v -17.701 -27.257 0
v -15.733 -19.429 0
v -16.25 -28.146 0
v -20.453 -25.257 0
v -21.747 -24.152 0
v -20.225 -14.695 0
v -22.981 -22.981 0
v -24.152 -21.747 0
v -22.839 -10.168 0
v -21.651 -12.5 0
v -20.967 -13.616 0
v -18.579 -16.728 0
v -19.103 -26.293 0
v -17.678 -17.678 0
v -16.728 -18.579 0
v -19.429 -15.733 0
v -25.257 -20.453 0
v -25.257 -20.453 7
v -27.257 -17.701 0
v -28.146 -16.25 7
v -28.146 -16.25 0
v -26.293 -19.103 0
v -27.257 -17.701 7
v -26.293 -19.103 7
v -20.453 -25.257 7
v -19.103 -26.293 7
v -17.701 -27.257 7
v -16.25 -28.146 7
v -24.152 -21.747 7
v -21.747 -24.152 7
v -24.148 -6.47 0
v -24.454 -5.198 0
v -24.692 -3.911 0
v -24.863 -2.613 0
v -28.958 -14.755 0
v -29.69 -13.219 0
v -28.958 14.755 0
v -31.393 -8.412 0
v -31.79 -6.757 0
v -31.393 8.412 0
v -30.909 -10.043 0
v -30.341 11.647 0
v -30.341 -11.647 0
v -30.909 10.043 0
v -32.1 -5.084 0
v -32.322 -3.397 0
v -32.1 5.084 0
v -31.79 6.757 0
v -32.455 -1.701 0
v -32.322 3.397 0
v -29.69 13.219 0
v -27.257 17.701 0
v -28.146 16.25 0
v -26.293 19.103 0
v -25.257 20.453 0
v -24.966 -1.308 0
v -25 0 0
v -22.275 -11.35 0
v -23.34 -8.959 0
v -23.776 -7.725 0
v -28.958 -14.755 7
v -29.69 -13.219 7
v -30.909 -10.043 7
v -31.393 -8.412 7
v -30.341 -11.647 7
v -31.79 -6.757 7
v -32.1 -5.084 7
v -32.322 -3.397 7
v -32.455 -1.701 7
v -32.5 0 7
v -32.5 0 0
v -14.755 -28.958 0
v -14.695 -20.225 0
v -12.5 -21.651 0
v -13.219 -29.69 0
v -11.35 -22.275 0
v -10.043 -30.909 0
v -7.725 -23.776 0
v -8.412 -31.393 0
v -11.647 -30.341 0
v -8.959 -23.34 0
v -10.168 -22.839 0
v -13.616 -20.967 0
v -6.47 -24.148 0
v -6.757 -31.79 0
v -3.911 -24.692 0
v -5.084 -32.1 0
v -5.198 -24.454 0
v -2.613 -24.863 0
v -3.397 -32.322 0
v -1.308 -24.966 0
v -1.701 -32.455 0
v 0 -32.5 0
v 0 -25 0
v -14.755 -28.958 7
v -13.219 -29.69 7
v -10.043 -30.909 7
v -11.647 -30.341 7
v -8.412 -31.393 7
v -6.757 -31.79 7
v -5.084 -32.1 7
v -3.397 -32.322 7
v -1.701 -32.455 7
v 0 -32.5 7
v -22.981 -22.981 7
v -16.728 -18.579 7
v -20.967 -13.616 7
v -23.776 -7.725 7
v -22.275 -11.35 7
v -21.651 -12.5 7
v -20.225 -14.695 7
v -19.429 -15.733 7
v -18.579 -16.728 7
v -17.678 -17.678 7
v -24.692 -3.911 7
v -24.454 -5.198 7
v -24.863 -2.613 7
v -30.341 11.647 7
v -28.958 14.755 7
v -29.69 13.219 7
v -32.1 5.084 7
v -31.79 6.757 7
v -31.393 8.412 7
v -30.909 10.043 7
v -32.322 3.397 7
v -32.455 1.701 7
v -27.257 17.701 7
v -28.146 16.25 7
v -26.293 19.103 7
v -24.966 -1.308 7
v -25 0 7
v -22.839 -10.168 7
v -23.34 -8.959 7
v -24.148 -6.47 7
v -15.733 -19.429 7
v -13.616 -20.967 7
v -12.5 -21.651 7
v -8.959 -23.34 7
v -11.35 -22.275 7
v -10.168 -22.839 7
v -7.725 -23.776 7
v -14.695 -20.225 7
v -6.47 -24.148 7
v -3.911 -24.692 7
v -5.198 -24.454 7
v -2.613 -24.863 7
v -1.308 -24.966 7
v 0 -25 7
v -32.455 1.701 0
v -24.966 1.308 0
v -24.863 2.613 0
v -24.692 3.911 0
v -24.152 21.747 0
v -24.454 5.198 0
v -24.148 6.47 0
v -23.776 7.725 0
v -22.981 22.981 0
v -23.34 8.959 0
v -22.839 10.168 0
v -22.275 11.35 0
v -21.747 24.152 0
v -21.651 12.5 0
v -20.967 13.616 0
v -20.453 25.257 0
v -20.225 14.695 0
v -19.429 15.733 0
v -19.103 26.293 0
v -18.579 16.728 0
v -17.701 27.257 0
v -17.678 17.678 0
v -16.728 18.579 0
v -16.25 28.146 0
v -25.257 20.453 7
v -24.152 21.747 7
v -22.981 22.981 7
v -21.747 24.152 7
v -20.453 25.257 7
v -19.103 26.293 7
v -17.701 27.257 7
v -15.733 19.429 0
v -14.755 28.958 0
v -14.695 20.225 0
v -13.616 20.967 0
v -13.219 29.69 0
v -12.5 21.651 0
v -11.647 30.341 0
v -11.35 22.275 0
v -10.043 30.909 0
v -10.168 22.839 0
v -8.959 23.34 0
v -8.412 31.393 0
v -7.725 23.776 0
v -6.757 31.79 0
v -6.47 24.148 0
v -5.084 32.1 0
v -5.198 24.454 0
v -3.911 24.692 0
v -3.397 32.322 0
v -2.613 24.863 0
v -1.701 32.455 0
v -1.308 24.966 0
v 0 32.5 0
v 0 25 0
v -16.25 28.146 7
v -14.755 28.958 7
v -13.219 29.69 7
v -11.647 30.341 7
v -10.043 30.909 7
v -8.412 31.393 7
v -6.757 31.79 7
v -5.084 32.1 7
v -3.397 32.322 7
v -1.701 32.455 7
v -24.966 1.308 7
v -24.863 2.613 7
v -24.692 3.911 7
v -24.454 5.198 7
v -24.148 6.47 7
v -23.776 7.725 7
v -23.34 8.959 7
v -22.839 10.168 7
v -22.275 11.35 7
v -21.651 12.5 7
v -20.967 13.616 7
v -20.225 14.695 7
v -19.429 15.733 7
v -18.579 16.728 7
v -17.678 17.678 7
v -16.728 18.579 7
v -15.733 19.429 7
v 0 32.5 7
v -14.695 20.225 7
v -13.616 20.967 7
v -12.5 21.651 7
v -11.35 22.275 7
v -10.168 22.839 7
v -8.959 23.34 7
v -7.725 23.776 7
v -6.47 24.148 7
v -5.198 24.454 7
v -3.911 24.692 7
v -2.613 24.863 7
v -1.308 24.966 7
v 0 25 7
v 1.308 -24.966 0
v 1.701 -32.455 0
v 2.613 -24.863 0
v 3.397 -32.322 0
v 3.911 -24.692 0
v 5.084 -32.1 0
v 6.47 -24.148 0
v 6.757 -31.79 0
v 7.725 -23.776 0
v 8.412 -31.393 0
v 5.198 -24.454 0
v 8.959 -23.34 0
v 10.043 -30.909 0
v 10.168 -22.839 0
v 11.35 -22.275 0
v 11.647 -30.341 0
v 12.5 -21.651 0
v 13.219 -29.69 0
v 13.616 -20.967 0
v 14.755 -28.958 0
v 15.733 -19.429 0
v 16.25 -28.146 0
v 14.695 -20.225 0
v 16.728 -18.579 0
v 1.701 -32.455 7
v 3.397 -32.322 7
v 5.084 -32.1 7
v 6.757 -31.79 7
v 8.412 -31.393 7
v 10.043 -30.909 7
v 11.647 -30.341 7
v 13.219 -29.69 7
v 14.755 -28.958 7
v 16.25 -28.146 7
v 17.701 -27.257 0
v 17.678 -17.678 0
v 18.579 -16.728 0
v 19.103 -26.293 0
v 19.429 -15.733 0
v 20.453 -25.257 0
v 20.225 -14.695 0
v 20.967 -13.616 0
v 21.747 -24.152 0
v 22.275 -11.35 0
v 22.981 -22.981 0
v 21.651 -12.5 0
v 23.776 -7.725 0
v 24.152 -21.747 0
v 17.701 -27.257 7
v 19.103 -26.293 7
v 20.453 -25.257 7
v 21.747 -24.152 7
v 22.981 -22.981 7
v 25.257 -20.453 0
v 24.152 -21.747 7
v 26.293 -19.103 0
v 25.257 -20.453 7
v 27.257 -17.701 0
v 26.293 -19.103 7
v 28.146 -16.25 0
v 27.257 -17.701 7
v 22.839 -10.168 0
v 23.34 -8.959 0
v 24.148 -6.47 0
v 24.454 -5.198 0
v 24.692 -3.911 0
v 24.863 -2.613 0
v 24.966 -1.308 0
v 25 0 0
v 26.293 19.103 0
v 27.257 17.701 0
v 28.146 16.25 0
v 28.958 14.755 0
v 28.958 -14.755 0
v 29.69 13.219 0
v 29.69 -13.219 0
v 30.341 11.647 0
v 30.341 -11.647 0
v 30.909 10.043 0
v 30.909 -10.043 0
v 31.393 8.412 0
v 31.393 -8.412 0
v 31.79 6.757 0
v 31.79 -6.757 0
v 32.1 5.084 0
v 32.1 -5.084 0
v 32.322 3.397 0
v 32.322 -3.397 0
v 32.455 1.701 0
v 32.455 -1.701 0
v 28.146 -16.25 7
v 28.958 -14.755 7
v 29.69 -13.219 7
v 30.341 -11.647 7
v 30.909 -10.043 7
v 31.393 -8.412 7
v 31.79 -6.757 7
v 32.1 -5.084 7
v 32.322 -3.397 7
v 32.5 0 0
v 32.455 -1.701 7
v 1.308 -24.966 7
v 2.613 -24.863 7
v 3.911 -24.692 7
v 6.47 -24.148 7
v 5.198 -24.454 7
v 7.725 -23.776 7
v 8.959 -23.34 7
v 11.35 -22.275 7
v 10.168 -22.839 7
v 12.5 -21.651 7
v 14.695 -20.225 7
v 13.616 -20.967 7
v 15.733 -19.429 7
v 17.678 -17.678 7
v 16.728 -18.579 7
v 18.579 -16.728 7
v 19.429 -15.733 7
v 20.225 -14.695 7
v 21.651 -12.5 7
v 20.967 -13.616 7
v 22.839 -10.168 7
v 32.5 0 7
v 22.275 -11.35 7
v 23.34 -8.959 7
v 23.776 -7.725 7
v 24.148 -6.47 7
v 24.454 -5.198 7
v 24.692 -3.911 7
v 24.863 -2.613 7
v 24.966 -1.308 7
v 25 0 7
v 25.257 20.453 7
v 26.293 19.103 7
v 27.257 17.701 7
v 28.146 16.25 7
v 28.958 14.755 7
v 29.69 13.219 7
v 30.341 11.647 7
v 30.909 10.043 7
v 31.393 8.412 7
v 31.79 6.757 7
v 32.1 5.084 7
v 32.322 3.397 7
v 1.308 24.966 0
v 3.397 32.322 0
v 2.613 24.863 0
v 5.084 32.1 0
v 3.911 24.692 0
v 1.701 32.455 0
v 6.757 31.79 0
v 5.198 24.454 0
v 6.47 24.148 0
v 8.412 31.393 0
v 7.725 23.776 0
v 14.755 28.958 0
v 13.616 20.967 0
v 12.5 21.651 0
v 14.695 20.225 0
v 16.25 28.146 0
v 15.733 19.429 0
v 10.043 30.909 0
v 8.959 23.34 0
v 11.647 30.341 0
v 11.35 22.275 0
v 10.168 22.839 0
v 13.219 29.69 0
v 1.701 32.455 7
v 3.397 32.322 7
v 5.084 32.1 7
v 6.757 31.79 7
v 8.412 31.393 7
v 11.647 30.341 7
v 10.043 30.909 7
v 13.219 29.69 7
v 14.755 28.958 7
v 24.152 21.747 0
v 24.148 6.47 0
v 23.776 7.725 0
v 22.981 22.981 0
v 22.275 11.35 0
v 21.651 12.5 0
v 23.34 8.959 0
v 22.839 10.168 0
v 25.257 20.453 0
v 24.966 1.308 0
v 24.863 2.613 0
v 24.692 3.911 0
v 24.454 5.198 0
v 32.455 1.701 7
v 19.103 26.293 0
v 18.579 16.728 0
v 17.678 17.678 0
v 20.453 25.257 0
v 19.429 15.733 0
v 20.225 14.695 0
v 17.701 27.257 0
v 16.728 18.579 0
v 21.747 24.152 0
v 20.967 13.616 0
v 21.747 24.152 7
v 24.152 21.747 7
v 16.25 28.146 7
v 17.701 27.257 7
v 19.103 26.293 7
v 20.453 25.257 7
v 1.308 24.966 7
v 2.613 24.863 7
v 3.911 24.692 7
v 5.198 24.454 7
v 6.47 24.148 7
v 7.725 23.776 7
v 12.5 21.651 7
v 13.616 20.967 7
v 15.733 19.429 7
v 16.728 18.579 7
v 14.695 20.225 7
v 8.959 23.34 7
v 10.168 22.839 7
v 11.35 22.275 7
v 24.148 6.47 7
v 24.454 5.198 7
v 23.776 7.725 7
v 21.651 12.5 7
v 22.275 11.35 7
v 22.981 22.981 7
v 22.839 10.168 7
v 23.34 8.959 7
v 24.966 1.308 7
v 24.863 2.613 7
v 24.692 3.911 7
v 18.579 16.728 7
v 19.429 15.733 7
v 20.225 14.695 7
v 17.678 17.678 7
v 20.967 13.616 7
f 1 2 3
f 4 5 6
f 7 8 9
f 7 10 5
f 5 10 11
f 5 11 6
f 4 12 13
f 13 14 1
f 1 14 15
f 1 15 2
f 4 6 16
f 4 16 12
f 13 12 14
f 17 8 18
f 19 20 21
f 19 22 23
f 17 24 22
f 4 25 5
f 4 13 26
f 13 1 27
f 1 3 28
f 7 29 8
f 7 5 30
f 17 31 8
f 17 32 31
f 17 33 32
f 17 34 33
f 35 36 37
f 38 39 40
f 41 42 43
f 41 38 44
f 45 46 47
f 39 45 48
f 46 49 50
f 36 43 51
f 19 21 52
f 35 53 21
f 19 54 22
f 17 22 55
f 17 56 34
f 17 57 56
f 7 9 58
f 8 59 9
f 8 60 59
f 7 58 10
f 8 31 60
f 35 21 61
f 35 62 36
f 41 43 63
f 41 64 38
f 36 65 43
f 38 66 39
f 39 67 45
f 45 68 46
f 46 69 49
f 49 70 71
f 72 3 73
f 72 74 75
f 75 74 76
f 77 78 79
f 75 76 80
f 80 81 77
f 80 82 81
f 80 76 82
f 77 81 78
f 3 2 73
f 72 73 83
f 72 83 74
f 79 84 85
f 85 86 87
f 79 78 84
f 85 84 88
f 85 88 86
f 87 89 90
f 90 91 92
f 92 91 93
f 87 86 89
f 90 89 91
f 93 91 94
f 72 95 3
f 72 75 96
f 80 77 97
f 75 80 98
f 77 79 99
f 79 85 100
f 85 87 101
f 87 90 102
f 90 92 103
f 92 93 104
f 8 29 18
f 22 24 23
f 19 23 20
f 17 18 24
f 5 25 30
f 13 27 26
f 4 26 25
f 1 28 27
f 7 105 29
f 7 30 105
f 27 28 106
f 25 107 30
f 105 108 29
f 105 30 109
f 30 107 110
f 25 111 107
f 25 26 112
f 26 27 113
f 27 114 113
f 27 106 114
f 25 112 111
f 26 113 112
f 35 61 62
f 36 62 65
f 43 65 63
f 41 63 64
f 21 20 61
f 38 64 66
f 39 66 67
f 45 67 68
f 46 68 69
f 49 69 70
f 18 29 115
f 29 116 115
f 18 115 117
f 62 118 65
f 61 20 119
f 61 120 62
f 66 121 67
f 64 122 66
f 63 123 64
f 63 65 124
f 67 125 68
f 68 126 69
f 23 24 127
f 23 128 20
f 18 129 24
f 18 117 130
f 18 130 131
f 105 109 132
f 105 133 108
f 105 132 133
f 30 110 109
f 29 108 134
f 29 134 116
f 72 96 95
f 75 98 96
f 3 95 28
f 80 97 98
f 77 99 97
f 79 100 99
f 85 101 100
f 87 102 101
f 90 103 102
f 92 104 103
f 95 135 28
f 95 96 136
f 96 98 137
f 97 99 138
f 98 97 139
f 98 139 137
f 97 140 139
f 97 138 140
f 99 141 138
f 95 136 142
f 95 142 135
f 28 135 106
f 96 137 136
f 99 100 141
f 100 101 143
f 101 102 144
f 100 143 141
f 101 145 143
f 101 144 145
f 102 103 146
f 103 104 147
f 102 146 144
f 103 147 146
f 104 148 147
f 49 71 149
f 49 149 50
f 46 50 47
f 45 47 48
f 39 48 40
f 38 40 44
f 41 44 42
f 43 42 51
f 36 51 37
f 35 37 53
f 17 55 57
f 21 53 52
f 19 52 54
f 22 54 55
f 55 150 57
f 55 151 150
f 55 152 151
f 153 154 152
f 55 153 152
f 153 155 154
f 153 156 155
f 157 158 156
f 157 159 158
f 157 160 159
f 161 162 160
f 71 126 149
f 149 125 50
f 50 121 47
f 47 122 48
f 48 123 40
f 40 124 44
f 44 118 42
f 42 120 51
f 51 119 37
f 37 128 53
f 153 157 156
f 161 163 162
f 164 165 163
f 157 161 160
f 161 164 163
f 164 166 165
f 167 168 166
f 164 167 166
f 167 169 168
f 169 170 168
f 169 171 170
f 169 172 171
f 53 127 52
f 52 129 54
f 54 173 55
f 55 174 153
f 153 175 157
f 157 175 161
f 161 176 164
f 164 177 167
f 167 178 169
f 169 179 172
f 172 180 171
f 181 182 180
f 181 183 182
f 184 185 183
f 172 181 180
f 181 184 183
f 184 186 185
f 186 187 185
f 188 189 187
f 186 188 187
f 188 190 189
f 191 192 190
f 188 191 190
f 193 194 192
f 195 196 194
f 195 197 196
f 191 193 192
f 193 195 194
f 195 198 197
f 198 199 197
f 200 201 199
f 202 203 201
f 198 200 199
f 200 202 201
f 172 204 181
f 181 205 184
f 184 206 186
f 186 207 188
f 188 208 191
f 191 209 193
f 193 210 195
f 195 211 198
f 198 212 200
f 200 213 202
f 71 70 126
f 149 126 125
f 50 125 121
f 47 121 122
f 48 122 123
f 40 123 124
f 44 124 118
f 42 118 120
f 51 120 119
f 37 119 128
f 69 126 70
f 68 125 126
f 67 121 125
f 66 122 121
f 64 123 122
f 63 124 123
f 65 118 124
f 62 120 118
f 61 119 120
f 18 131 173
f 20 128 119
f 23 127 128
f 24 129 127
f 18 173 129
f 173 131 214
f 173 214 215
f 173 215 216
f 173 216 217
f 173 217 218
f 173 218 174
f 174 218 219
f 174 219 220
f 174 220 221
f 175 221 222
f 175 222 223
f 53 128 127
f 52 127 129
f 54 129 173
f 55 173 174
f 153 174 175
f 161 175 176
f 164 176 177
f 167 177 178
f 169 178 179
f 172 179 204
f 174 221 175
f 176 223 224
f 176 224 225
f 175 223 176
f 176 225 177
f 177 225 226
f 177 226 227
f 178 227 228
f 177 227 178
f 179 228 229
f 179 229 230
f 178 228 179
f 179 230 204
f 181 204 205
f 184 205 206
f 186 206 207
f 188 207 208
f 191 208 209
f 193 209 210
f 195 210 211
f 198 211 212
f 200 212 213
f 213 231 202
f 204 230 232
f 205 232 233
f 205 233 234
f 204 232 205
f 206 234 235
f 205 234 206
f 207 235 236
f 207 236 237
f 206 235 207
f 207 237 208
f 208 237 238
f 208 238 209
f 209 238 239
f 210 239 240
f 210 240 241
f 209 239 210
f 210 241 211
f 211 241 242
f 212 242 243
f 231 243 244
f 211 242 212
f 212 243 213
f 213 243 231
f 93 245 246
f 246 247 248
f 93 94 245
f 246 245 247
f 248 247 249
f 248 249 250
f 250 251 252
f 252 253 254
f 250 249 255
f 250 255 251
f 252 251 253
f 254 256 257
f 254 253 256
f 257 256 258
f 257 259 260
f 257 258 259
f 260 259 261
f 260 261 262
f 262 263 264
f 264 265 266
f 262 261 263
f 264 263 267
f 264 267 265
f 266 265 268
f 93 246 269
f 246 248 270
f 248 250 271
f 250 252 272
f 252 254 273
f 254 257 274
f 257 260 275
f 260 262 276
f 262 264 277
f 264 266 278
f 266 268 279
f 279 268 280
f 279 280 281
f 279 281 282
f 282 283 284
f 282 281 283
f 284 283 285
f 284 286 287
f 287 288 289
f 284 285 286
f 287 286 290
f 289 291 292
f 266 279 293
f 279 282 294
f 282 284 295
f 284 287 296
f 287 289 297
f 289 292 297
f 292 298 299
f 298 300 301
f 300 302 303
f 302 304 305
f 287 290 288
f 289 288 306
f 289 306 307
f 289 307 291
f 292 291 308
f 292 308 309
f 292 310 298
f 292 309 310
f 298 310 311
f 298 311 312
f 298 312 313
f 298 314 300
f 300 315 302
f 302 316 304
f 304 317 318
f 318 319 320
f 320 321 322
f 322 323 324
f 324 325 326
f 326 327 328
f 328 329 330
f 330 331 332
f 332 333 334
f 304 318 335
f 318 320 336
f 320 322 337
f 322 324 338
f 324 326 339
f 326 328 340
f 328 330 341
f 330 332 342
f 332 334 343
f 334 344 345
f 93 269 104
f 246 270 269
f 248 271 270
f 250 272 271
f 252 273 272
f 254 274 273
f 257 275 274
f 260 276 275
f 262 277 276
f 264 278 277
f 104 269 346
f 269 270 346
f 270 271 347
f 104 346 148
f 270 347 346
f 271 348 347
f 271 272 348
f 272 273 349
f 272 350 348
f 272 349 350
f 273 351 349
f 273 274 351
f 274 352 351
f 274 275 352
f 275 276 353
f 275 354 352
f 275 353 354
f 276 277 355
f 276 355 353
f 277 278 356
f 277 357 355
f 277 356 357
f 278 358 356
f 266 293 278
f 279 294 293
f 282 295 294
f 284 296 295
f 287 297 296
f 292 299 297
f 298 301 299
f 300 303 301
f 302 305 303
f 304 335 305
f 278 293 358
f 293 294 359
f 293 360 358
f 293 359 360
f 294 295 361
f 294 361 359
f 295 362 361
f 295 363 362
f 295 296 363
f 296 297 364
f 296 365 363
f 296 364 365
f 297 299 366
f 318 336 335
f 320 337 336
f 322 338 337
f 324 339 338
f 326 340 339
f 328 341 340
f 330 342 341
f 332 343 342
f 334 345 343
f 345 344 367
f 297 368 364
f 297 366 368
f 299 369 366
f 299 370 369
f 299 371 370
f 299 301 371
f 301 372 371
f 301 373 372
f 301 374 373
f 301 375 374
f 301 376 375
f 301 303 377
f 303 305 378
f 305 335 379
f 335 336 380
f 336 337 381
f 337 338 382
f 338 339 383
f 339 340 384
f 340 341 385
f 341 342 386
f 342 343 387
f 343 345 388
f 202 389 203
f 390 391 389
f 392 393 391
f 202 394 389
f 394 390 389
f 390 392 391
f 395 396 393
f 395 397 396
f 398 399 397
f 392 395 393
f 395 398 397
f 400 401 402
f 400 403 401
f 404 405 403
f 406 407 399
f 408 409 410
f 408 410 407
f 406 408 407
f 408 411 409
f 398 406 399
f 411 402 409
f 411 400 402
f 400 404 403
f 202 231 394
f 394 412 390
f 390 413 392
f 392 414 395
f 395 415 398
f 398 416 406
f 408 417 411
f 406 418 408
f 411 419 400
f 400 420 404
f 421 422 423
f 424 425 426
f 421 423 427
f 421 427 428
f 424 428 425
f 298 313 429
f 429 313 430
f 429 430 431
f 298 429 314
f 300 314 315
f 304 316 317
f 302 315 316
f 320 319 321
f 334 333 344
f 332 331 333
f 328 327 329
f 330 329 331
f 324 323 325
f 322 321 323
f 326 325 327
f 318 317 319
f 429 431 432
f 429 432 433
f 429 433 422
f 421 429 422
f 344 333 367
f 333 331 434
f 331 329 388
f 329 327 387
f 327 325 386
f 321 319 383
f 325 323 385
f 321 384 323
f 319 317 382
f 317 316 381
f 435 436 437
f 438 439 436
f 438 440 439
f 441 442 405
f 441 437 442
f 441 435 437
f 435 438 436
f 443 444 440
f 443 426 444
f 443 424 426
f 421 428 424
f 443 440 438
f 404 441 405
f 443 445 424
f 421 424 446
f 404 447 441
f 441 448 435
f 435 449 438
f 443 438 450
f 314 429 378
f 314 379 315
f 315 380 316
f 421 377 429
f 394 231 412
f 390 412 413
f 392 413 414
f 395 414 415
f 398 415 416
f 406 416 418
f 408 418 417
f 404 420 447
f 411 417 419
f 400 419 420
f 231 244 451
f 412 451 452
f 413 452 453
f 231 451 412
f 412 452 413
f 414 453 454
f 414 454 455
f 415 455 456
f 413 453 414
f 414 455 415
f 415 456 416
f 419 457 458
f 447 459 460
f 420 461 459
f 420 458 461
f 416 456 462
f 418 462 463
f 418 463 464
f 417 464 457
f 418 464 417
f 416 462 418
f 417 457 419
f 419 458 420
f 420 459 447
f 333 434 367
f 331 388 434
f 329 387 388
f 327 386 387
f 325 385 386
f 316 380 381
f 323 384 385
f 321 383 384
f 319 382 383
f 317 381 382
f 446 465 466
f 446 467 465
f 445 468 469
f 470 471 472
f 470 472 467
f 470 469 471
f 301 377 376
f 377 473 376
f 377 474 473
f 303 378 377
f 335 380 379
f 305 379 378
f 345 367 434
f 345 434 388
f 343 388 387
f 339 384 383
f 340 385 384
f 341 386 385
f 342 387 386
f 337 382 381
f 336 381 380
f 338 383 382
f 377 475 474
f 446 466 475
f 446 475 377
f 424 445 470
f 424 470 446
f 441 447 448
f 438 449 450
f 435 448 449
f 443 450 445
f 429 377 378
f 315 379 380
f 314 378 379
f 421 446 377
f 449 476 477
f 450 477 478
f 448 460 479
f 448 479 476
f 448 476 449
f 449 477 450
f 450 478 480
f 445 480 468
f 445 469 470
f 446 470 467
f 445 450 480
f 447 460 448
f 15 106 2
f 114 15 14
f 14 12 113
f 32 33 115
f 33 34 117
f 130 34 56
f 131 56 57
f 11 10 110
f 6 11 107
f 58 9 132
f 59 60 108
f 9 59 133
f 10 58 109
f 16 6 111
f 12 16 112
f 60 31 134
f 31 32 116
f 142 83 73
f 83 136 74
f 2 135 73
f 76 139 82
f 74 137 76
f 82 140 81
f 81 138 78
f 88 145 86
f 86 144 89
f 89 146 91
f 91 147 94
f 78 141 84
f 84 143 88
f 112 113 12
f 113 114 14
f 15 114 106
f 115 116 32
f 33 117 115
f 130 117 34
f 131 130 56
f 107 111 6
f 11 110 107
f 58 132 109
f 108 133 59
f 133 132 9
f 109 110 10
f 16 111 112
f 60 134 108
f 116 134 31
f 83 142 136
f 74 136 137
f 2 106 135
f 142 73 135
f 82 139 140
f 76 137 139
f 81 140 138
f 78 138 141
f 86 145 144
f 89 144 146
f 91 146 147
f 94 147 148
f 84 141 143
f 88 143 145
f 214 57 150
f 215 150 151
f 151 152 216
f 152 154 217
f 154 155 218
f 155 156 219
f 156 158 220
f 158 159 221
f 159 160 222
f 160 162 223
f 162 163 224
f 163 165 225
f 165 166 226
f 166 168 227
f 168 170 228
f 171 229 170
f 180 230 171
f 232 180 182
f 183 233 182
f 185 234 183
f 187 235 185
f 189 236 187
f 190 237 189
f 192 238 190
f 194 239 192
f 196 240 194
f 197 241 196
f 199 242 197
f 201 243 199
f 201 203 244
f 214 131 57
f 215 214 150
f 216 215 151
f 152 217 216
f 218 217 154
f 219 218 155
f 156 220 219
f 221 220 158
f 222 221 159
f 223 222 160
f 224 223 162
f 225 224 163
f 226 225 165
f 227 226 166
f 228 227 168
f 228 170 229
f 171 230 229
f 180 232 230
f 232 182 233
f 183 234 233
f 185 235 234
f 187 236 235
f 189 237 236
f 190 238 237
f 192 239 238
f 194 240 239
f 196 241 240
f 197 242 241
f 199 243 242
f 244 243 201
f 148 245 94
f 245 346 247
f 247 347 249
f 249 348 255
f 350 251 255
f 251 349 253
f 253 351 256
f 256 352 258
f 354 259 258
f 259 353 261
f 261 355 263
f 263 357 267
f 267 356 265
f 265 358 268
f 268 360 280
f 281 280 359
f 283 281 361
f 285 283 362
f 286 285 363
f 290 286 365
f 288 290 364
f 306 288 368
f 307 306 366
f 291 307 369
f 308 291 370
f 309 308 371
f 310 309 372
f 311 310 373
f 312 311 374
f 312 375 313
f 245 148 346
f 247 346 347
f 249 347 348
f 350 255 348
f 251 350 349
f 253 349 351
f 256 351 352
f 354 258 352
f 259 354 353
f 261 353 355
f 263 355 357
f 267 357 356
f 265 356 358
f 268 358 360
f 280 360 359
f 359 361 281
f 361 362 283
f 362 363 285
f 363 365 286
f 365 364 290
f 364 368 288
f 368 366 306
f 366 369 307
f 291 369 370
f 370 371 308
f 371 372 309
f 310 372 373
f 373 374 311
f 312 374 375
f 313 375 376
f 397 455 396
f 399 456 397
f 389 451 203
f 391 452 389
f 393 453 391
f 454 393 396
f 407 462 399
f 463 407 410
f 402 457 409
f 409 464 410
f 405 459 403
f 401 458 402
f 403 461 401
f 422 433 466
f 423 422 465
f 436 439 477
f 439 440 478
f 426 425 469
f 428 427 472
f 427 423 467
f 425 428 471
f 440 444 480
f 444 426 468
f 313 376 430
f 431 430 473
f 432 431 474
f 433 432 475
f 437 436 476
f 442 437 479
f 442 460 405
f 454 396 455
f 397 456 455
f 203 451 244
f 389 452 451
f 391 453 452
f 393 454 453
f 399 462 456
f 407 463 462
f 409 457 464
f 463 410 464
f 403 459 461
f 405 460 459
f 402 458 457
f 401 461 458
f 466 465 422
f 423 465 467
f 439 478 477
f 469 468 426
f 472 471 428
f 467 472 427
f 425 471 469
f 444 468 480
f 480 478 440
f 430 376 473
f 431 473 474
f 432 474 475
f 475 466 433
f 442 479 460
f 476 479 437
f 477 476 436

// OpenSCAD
// file: C:/gh/oomlout_oobb_part_motor_gearbox_wave_drive_version_5/parts/oobb_part_motor_gearbox_wave_drive_version_5_12_to_1_reduction/compact_helpers.scad
// Reusable native geometry helpers.
function polar(r,a)=[r*cos(a),r*sin(a)];
function rotate_point(p,a)=[p[0]*cos(a)-p[1]*sin(a),p[0]*sin(a)+p[1]*cos(a)];
function profile_point(t)=let(
    s=sqrt(pow(pitch_radius,2)-pow(eccentricity*sin(cavity_count*t),2)),
    r=eccentricity*cos(cavity_count*t)+s,
    xi=atan2(eccentricity*cavity_count*sin(cavity_count*t),s),
    rr=roller_radius+profile_clearance)
    [r*cos(t)+rr*cos(t+xi),r*sin(t)+rr*sin(t+xi)];
function profile_points(upper=false)=[for(i=[0:cavity_count*profile_samples_per_cavity-1])
    rotate_point(profile_point(360*i/(cavity_count*profile_samples_per_cavity)),0)];
function roller_position(i,a,upper=false)=let(
    t=-a/roller_count+360*i/roller_count,
    rel=t-a-(upper?180:0),
    r=eccentricity*cos(rel)+sqrt(pow(pitch_radius,2)-pow(eccentricity*sin(rel),2))) polar(r,t);
module tube(ro,ri,h) { difference() { cylinder(r=ro,h=h); translate([0,0,-eps]) cylinder(r=ri,h=h+2*eps); } }
module screw_hole(size,h) { scale([1,1,h]) { if(size=="m2") oobb_hole_m2(); if(size=="m3") oobb_hole_m3(); if(size=="m6") oobb_hole_m6(); } }
module socket_recess(size,depth) {
    // OOBB socket head starts at the under-head plane and extends outward.
    scale([1,1,depth/(size=="m3"?3.2:2.2)]) {
        if(size=="m3") oobb_socket_m3(); else oobb_socket_m2();
    }
}
module at_mounts(points) { for(p=points) translate([p[0],p[1],0]) children(); }
module shaft_cut(h,fit=shaft_fit_clearance) {
    linear_extrude(h) intersection() {
        circle(r=input_shaft_diameter/2+fit);
        translate([-10,-10]) square([10+input_shaft_diameter/2-input_shaft_flat_depth+fit,20]);
    }
}
module rounded_rectangle_plate(size=[119,119,3],radius=1.5) {
    hull() for(x=[-1,1],y=[-1,1]) translate([x*(size[0]/2-radius),y*(size[1]/2-radius),0]) cylinder(r=radius,h=size[2]);
}
module grid_cuts(h) {
    // Actual OOBB grid centres: six units are centred on half-pitch offsets.
    for(i=[0:base_width-1],j=[0:base_height-1])
        let(x=(i-(base_width-1)/2)*oobb_grid_pitch,y=(j-(base_height-1)/2)*oobb_grid_pitch)
        if(sqrt(x*x+y*y)>housing_radius+3.5)
            translate([x,y,-eps]) screw_hole("m6",h+2*eps);
}
module wave_generator() {
    render(convexity=20) difference() {
        tube(wave_radius,12.6,wave_height);
        translate([0,0,wave_seat_z]) cylinder(r=13.5+bearing_seat_clearance,h=wave_height);
        translate([0,0,wave_height-wave_cap_depth]) cylinder(r=22.15,h=wave_cap_depth+eps);
        at_mounts(wave_mounts) {
            translate([0,0,-eps]) screw_hole("m3",wave_height+2*eps);
            translate([0,0,wave_nut_z]) scale([1,1,(wave_height-wave_cap_depth-wave_nut_z+eps)/2.7]) oobb_nut_m3();
        }
    }
}
module wave_cap() {
    render(convexity=20) difference() {
        tube(22,12.6,wave_cap_depth);
        at_mounts(wave_mounts) {
            translate([0,0,-eps]) screw_hole("m3",wave_cap_depth+2*eps);
            translate([0,0,wave_cap_depth-wave_head_recess]) socket_recess("m3",wave_head_recess+eps);
        }
    }
}
// file: C:/gh/oomlout_oobb_part_motor_gearbox_wave_drive_version_5/parts/oobb_part_motor_gearbox_wave_drive_version_5_12_to_1_reduction/oobb_hardware.scad
module oobb_rounded_rectangle_edges(size, radius, radius_top, radius_bottom) {
      rt=radius_top; rb=radius_bottom; depth=size[2]; n=16;
      lower=rb==0 ? [[radius,0]] :
        [for(i=[0:n]) let(a=-90+90*i/n) [radius-rb+rb*cos(a),rb+rb*sin(a)]];
      upper=rt==0 ? [[radius,depth]] :
        [for(i=[0:n]) let(a=90*i/n) [radius-rt+rt*cos(a),depth-rt+rt*sin(a)]];
      hull() for(x=[-size[0]/2+radius,size[0]/2-radius])
        for(y=[-size[1]/2+radius,size[1]/2-radius])
          translate([x,y,0]) rotate_extrude()
            polygon(concat([[0,0]],lower,upper,[[0,depth]]));
    }
// Generated from installed OOBB v5. All primitives use overhang=True.

module oobb_motor_plate_body() {


difference() {
	union() {
		translate(v = [0, 0, 0]) {
			rotate(a = [0, 0, 0]) {
				difference() {
					union() {
						oobb_rounded_rectangle_edges(radius = 1.5, radius_bottom = 1.5, radius_top = 1.5, size = [89.0, 89.0, 4.0]);
					}
					union();
				}
			}
		}
	}
	union();
}

}

module oobb_hole_m2() {


difference() {
	union() {
		cylinder(h = 1, r = 1.35);
	}
	union();
}

}

module oobb_hole_m3() {


difference() {
	union() {
		cylinder(h = 1, r = 1.8);
	}
	union();
}

}

module oobb_hole_m6() {


difference() {
	union() {
		cylinder(h = 1, r = 3.25);
	}
	union();
}

}

module oobb_nut_m2() {


difference() {
	union() {
		translate(v = [0, 0, 0]) {
			rotate(a = [0, 0, 0]) {
				difference() {
					union() {
						linear_extrude(height = 2.2) {
							polygon(points = [[2.4234, 0.0], [1.2117000000000002, 2.0987259635312085], [-1.2116999999999996, 2.0987259635312085], [-2.4234, 2.967809053053696e-16], [-1.211700000000001, -2.098725963531208], [1.2116999999999984, -2.0987259635312094]]);
						}
						translate(v = [-1.25, -2.75, -0.3]) {
							cube(size = [2.5, 5.5, 0.3]);
						}
						translate(v = [-1.25, -1.25, -0.6]) {
							cube(size = [2.5, 2.5, 0.3]);
						}
						translate(v = [-1.25, -2.75, 2.2]) {
							cube(size = [2.5, 5.5, 0.3]);
						}
						translate(v = [-1.25, -1.25, 2.5]) {
							cube(size = [2.5, 2.5, 0.3]);
						}
					}
					union();
				}
			}
		}
	}
	union();
}

}

module oobb_socket_m2() {


difference() {
	union() {
		translate(v = [0, 0, 0]) {
			rotate(a = [0, 0, 0]) {
				difference() {
					union() {
						cylinder(h = 2.2, r = 2.1);
						translate(v = [-1.25, -2.75, -0.3]) {
							cube(size = [2.5, 5.5, 0.3]);
						}
						translate(v = [-1.25, -1.25, -0.6]) {
							cube(size = [2.5, 2.5, 0.3]);
						}
					}
					union();
				}
			}
		}
	}
	union();
}

}

module oobb_nut_m3() {


difference() {
	union() {
		translate(v = [0, 0, 0]) {
			rotate(a = [0, 0, 0]) {
				difference() {
					union() {
						linear_extrude(height = 2.7) {
							polygon(points = [[3.4619999999999997, 0.0], [1.7310000000000003, 2.9981799479017264], [-1.7309999999999992, 2.9981799479017264], [-3.4619999999999997, 4.2397272186481365e-16], [-1.7310000000000014, -2.998179947901726], [1.7309999999999977, -2.9981799479017277]]);
						}
						translate(v = [-1.75, -3.25, -0.3]) {
							cube(size = [3.5, 6.5, 0.3]);
						}
						translate(v = [-1.75, -1.75, -0.6]) {
							cube(size = [3.5, 3.5, 0.3]);
						}
						translate(v = [-1.75, -3.25, 2.7]) {
							cube(size = [3.5, 6.5, 0.3]);
						}
						translate(v = [-1.75, -1.75, 3.0]) {
							cube(size = [3.5, 3.5, 0.3]);
						}
					}
					union();
				}
			}
		}
	}
	union();
}

}

module oobb_socket_m3() {


difference() {
	union() {
		translate(v = [0, 0, 0]) {
			rotate(a = [0, 0, 0]) {
				difference() {
					union() {
						cylinder(h = 3.2, r = 3.0);
						translate(v = [-1.75, -3.25, -0.3]) {
							cube(size = [3.5, 6.5, 0.3]);
						}
						translate(v = [-1.75, -1.75, -0.6]) {
							cube(size = [3.5, 3.5, 0.3]);
						}
					}
					union();
				}
			}
		}
	}
	union();
}

}

module oobb_nut_m6() {


difference() {
	union() {
		translate(v = [0, 0, 0]) {
			rotate(a = [0, 0, 0]) {
				difference() {
					union() {
						linear_extrude(height = 5.2) {
							polygon(points = [[5.914249999999999, 0.0], [2.957125, 5.1218907443321156], [-2.9571249999999982, 5.1218907443321156], [-5.914249999999999, 7.242867331857232e-16], [-2.9571250000000022, -5.121890744332115], [2.9571249999999956, -5.121890744332118]]);
						}
						translate(v = [-2.875, -5.0, -0.3]) {
							cube(size = [5.75, 10, 0.3]);
						}
						translate(v = [-2.875, -2.875, -0.6]) {
							cube(size = [5.75, 5.75, 0.3]);
						}
						translate(v = [-2.875, -5.0, 5.2]) {
							cube(size = [5.75, 10, 0.3]);
						}
						translate(v = [-2.875, -2.875, 5.5]) {
							cube(size = [5.75, 5.75, 0.3]);
						}
					}
					union();
				}
			}
		}
	}
	union();
}

}
// file: C:/gh/oomlout_oobb_part_motor_gearbox_wave_drive_version_5/parts/oobb_part_motor_gearbox_wave_drive_version_5_12_to_1_reduction/parameters.scad
// Generated by working_scad.py. Edit the Python recipe to persist changes.
style = "version_5";
reduction = 12;
bearing_output = "6810";
bearing_wave = "6704";
roller_diameter = 7.0;
roller_bore_diameter = 3.2;
roller_length = 12.0;
roller_material = "nylon";
roller_bank_count = 1;
motor_plate_depth = 4.0;
motor_body_depth = 40.0;
motor_shaft_length = 24.0;
motor_hole_pitch = 31.0;
motor_thread_depth = 6.0;
motor_pilot_diameter = 22.0;
motor_pilot_height = 2.0;
output_holder_wall = 7.0;
max_screw_length = 35.0;
eccentricity = 0.75;
wave_radius = 23.25;
profile_clearance = 0.15;
roller_slot_clearance = 0.3;
roller_end_clearance = 0.3;
cage_wall = 4.0;
cage_plate_depth = 3.0;
bearing_seat_clearance = 0.1;
journal_clearance = 0.05;
bearing_axial_clearance = 0.2;
output_plate_diameter = 65.0;
output_plate_depth = 6.0;
output_grid_pitch = 15.0;
output_face_clearance = 0.3;
output_socket_recess = 4.0;
output_screw_length = 16;
output_nut_depth = 5.2;
output_nut_height = 5.0;
motor_shaft_end_clearance = 0.5;
base_width = 6;
base_height = 6;
oobb_grid_pitch = 15.0;
oobb_size_allowance = 1.0;
base_edge_radius = 1.5;
housing_flange_corner_radius = 1.5;
housing_screw_pitch_radius = 35.5;
housing_screw_count = 6;
input_shaft_diameter = 5.0;
input_shaft_flat_depth = 0.5;
shaft_fit_clearance = 0.1;
cage_screw_count = 4;
profile_samples_per_cavity = 100;
circle_fragments = 120;
overhang = true;
run_scad = true;
run_solidcraft = false;
generate_stl = true;
generate_previews = true;
generate_renders = true;
validate_geometry = true;
package_outputs = true;
render_threads = 8;
variant = "default";
// main file
include <C:/gh/oomlout_oobb_part_motor_gearbox_wave_drive_version_5/parts/oobb_part_motor_gearbox_wave_drive_version_5_12_to_1_reduction/parameters.scad>
include <C:/gh/oomlout_oobb_part_motor_gearbox_wave_drive_version_5/parts/oobb_part_motor_gearbox_wave_drive_version_5_12_to_1_reduction/oobb_hardware.scad>
include <C:/gh/oomlout_oobb_part_motor_gearbox_wave_drive_version_5/parts/oobb_part_motor_gearbox_wave_drive_version_5_12_to_1_reduction/geometry.scad>
tube(32.5,25.0,7.0);
